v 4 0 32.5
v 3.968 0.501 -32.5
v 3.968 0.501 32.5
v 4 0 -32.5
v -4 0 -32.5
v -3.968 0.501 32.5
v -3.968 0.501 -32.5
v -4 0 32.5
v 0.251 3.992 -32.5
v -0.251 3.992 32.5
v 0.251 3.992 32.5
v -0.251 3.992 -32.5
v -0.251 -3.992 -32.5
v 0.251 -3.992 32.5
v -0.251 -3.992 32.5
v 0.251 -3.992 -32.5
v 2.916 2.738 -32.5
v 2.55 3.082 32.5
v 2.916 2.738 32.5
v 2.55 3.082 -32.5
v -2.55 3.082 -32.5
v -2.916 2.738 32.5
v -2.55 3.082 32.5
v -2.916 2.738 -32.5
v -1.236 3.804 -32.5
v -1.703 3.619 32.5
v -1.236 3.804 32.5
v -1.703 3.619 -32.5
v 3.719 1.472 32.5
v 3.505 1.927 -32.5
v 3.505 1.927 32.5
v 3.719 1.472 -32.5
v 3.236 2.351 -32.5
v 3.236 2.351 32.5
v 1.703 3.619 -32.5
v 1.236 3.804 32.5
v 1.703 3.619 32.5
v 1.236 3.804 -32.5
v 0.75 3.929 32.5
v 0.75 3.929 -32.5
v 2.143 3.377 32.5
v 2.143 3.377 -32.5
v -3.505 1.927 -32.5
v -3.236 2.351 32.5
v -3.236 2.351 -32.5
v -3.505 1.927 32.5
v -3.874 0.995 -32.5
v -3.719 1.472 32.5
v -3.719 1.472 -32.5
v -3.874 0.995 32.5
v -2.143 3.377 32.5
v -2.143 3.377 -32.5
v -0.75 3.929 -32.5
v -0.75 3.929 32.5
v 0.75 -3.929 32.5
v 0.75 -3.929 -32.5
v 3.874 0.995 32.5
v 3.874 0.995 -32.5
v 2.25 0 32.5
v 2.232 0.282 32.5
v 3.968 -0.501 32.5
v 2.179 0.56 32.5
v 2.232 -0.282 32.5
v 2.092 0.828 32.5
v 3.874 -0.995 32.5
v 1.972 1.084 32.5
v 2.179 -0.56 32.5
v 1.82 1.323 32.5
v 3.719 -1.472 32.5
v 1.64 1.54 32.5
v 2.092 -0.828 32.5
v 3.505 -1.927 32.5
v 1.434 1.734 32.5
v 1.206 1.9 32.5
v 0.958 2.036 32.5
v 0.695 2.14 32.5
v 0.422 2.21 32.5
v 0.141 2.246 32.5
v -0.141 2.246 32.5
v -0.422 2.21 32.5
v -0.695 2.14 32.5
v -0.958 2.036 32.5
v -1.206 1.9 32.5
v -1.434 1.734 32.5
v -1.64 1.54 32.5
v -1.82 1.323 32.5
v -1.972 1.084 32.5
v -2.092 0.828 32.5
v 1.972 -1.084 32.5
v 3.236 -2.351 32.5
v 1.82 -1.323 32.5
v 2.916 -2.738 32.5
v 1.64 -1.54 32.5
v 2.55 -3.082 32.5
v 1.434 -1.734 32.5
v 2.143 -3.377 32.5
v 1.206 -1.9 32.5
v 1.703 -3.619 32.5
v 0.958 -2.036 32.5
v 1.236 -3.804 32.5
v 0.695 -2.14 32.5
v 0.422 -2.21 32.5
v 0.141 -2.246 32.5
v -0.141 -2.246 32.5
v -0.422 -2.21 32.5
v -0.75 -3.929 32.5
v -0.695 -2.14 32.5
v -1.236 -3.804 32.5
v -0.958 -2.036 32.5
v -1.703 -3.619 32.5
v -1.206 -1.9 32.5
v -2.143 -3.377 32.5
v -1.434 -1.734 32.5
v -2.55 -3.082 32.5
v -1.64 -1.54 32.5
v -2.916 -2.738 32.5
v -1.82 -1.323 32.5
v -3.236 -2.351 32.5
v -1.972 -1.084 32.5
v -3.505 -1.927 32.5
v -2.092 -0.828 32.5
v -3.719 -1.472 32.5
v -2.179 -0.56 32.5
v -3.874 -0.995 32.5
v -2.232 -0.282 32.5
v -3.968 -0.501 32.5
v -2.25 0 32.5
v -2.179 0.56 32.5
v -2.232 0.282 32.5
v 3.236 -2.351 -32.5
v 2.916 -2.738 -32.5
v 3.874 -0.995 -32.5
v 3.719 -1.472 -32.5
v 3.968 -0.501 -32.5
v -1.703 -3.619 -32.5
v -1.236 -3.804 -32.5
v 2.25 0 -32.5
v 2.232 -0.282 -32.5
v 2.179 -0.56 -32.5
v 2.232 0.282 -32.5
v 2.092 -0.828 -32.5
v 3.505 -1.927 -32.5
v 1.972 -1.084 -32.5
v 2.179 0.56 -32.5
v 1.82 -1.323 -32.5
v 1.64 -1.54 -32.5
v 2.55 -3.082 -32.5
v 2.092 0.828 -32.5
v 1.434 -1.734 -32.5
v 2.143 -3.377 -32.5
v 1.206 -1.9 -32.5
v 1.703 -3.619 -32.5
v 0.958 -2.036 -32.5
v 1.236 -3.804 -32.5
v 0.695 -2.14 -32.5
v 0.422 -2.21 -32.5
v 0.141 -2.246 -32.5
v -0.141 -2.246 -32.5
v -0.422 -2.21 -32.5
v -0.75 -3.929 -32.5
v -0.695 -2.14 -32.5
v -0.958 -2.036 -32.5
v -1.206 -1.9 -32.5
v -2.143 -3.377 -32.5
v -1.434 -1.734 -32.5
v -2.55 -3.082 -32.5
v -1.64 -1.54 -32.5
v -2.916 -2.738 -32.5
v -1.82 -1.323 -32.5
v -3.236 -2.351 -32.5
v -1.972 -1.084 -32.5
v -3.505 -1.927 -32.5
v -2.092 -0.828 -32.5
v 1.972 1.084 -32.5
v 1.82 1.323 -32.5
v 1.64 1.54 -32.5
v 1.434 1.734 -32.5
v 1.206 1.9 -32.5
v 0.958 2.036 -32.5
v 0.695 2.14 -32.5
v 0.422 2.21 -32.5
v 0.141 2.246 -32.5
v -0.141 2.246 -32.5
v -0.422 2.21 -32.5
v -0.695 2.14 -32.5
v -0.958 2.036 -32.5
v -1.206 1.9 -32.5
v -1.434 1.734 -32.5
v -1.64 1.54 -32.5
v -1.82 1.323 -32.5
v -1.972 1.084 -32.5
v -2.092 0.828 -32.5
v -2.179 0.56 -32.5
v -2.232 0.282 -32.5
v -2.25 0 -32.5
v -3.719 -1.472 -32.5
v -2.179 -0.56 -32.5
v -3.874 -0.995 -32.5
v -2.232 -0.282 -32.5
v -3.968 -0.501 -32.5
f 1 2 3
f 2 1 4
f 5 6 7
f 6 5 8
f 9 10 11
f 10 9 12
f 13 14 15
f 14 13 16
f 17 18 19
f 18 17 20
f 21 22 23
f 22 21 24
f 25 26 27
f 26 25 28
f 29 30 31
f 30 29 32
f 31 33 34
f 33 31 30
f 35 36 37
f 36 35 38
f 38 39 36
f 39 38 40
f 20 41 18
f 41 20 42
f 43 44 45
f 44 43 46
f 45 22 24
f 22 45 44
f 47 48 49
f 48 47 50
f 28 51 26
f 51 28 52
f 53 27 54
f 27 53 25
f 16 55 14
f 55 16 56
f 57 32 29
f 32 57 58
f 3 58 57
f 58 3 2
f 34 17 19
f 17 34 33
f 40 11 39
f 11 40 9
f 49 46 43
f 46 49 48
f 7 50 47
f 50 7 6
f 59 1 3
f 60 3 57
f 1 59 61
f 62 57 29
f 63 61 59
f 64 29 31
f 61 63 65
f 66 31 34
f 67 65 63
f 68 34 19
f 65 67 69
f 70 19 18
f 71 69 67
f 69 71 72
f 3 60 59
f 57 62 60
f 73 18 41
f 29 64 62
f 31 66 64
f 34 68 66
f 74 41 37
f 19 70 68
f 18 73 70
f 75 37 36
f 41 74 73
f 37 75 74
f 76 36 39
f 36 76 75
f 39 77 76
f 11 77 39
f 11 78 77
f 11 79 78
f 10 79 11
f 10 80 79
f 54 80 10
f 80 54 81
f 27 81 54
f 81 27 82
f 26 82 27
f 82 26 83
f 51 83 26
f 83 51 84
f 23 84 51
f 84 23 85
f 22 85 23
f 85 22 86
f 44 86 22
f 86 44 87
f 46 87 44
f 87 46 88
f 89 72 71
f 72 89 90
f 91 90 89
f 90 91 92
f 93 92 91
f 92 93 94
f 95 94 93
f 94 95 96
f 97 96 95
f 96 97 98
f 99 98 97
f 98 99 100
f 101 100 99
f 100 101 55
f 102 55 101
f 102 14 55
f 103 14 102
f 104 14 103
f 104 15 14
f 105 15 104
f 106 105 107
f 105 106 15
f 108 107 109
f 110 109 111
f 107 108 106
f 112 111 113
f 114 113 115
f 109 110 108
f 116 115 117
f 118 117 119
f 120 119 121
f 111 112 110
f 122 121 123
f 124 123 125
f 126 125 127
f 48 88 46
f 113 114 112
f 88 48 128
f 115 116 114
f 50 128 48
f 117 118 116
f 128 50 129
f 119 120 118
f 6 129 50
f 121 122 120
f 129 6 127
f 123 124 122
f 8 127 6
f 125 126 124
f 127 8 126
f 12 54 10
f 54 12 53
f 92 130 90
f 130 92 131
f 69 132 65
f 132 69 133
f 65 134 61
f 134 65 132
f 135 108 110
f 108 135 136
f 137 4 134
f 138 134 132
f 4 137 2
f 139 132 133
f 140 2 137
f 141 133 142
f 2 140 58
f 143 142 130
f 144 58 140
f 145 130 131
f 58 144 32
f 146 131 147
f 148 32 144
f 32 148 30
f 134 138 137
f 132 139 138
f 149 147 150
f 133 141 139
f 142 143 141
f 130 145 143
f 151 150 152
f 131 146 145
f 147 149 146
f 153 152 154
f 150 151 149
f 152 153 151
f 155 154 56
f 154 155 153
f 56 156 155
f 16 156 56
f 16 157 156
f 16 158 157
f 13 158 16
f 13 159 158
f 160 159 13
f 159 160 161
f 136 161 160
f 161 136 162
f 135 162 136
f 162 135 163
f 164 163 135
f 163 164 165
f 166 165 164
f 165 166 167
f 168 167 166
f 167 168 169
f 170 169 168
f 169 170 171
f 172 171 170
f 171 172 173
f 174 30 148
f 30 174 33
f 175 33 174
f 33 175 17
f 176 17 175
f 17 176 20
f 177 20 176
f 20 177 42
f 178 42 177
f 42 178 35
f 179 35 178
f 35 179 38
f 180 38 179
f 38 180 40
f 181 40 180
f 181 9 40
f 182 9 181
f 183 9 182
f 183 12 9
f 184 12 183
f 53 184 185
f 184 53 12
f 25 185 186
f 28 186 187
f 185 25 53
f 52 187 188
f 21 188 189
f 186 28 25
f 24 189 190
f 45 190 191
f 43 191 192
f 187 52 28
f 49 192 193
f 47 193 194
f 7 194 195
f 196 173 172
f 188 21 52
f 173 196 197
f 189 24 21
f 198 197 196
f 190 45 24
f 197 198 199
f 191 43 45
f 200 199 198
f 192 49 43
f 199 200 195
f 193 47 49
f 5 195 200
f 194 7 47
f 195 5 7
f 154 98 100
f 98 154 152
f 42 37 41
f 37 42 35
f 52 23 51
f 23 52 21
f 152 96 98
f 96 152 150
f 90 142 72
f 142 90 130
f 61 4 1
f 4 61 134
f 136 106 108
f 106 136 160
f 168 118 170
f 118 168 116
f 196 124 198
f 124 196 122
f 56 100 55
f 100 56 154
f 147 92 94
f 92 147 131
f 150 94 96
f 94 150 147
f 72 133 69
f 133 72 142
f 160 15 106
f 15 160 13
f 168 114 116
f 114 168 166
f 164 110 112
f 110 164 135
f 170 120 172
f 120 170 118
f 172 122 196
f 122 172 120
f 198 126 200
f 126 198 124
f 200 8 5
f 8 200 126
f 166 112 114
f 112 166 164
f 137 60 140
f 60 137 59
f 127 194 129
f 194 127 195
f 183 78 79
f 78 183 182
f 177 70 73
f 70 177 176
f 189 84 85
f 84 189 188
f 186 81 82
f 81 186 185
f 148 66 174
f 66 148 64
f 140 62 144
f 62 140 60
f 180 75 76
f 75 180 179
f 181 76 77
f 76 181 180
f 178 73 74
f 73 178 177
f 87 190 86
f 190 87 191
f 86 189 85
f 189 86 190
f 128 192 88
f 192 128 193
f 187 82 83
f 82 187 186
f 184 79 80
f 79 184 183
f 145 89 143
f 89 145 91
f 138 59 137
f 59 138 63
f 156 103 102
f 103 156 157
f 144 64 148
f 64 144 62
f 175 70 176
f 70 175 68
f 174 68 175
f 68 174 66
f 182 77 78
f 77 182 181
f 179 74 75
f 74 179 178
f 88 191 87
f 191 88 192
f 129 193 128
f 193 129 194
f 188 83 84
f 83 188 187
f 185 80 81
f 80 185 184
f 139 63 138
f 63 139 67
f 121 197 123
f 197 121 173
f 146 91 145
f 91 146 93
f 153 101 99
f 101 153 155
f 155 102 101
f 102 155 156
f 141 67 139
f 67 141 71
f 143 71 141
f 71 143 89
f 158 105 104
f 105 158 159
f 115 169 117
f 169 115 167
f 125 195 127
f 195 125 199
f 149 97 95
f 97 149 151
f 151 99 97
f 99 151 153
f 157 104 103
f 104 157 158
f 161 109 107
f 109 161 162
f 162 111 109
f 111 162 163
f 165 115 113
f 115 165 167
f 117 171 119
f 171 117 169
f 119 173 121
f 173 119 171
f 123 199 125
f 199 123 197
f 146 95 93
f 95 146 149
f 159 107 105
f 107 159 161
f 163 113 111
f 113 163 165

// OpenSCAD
$fn = 50;


difference() {
	union() {
		translate(v = [0, 0, -32.5000000000]) {
			cylinder(h = 65, r = 4.0000000000);
		}
	}
	union() {
		translate(v = [0, 0, -100.0000000000]) {
			cylinder(h = 200, r = 2.2500000000);
		}
	}
}
